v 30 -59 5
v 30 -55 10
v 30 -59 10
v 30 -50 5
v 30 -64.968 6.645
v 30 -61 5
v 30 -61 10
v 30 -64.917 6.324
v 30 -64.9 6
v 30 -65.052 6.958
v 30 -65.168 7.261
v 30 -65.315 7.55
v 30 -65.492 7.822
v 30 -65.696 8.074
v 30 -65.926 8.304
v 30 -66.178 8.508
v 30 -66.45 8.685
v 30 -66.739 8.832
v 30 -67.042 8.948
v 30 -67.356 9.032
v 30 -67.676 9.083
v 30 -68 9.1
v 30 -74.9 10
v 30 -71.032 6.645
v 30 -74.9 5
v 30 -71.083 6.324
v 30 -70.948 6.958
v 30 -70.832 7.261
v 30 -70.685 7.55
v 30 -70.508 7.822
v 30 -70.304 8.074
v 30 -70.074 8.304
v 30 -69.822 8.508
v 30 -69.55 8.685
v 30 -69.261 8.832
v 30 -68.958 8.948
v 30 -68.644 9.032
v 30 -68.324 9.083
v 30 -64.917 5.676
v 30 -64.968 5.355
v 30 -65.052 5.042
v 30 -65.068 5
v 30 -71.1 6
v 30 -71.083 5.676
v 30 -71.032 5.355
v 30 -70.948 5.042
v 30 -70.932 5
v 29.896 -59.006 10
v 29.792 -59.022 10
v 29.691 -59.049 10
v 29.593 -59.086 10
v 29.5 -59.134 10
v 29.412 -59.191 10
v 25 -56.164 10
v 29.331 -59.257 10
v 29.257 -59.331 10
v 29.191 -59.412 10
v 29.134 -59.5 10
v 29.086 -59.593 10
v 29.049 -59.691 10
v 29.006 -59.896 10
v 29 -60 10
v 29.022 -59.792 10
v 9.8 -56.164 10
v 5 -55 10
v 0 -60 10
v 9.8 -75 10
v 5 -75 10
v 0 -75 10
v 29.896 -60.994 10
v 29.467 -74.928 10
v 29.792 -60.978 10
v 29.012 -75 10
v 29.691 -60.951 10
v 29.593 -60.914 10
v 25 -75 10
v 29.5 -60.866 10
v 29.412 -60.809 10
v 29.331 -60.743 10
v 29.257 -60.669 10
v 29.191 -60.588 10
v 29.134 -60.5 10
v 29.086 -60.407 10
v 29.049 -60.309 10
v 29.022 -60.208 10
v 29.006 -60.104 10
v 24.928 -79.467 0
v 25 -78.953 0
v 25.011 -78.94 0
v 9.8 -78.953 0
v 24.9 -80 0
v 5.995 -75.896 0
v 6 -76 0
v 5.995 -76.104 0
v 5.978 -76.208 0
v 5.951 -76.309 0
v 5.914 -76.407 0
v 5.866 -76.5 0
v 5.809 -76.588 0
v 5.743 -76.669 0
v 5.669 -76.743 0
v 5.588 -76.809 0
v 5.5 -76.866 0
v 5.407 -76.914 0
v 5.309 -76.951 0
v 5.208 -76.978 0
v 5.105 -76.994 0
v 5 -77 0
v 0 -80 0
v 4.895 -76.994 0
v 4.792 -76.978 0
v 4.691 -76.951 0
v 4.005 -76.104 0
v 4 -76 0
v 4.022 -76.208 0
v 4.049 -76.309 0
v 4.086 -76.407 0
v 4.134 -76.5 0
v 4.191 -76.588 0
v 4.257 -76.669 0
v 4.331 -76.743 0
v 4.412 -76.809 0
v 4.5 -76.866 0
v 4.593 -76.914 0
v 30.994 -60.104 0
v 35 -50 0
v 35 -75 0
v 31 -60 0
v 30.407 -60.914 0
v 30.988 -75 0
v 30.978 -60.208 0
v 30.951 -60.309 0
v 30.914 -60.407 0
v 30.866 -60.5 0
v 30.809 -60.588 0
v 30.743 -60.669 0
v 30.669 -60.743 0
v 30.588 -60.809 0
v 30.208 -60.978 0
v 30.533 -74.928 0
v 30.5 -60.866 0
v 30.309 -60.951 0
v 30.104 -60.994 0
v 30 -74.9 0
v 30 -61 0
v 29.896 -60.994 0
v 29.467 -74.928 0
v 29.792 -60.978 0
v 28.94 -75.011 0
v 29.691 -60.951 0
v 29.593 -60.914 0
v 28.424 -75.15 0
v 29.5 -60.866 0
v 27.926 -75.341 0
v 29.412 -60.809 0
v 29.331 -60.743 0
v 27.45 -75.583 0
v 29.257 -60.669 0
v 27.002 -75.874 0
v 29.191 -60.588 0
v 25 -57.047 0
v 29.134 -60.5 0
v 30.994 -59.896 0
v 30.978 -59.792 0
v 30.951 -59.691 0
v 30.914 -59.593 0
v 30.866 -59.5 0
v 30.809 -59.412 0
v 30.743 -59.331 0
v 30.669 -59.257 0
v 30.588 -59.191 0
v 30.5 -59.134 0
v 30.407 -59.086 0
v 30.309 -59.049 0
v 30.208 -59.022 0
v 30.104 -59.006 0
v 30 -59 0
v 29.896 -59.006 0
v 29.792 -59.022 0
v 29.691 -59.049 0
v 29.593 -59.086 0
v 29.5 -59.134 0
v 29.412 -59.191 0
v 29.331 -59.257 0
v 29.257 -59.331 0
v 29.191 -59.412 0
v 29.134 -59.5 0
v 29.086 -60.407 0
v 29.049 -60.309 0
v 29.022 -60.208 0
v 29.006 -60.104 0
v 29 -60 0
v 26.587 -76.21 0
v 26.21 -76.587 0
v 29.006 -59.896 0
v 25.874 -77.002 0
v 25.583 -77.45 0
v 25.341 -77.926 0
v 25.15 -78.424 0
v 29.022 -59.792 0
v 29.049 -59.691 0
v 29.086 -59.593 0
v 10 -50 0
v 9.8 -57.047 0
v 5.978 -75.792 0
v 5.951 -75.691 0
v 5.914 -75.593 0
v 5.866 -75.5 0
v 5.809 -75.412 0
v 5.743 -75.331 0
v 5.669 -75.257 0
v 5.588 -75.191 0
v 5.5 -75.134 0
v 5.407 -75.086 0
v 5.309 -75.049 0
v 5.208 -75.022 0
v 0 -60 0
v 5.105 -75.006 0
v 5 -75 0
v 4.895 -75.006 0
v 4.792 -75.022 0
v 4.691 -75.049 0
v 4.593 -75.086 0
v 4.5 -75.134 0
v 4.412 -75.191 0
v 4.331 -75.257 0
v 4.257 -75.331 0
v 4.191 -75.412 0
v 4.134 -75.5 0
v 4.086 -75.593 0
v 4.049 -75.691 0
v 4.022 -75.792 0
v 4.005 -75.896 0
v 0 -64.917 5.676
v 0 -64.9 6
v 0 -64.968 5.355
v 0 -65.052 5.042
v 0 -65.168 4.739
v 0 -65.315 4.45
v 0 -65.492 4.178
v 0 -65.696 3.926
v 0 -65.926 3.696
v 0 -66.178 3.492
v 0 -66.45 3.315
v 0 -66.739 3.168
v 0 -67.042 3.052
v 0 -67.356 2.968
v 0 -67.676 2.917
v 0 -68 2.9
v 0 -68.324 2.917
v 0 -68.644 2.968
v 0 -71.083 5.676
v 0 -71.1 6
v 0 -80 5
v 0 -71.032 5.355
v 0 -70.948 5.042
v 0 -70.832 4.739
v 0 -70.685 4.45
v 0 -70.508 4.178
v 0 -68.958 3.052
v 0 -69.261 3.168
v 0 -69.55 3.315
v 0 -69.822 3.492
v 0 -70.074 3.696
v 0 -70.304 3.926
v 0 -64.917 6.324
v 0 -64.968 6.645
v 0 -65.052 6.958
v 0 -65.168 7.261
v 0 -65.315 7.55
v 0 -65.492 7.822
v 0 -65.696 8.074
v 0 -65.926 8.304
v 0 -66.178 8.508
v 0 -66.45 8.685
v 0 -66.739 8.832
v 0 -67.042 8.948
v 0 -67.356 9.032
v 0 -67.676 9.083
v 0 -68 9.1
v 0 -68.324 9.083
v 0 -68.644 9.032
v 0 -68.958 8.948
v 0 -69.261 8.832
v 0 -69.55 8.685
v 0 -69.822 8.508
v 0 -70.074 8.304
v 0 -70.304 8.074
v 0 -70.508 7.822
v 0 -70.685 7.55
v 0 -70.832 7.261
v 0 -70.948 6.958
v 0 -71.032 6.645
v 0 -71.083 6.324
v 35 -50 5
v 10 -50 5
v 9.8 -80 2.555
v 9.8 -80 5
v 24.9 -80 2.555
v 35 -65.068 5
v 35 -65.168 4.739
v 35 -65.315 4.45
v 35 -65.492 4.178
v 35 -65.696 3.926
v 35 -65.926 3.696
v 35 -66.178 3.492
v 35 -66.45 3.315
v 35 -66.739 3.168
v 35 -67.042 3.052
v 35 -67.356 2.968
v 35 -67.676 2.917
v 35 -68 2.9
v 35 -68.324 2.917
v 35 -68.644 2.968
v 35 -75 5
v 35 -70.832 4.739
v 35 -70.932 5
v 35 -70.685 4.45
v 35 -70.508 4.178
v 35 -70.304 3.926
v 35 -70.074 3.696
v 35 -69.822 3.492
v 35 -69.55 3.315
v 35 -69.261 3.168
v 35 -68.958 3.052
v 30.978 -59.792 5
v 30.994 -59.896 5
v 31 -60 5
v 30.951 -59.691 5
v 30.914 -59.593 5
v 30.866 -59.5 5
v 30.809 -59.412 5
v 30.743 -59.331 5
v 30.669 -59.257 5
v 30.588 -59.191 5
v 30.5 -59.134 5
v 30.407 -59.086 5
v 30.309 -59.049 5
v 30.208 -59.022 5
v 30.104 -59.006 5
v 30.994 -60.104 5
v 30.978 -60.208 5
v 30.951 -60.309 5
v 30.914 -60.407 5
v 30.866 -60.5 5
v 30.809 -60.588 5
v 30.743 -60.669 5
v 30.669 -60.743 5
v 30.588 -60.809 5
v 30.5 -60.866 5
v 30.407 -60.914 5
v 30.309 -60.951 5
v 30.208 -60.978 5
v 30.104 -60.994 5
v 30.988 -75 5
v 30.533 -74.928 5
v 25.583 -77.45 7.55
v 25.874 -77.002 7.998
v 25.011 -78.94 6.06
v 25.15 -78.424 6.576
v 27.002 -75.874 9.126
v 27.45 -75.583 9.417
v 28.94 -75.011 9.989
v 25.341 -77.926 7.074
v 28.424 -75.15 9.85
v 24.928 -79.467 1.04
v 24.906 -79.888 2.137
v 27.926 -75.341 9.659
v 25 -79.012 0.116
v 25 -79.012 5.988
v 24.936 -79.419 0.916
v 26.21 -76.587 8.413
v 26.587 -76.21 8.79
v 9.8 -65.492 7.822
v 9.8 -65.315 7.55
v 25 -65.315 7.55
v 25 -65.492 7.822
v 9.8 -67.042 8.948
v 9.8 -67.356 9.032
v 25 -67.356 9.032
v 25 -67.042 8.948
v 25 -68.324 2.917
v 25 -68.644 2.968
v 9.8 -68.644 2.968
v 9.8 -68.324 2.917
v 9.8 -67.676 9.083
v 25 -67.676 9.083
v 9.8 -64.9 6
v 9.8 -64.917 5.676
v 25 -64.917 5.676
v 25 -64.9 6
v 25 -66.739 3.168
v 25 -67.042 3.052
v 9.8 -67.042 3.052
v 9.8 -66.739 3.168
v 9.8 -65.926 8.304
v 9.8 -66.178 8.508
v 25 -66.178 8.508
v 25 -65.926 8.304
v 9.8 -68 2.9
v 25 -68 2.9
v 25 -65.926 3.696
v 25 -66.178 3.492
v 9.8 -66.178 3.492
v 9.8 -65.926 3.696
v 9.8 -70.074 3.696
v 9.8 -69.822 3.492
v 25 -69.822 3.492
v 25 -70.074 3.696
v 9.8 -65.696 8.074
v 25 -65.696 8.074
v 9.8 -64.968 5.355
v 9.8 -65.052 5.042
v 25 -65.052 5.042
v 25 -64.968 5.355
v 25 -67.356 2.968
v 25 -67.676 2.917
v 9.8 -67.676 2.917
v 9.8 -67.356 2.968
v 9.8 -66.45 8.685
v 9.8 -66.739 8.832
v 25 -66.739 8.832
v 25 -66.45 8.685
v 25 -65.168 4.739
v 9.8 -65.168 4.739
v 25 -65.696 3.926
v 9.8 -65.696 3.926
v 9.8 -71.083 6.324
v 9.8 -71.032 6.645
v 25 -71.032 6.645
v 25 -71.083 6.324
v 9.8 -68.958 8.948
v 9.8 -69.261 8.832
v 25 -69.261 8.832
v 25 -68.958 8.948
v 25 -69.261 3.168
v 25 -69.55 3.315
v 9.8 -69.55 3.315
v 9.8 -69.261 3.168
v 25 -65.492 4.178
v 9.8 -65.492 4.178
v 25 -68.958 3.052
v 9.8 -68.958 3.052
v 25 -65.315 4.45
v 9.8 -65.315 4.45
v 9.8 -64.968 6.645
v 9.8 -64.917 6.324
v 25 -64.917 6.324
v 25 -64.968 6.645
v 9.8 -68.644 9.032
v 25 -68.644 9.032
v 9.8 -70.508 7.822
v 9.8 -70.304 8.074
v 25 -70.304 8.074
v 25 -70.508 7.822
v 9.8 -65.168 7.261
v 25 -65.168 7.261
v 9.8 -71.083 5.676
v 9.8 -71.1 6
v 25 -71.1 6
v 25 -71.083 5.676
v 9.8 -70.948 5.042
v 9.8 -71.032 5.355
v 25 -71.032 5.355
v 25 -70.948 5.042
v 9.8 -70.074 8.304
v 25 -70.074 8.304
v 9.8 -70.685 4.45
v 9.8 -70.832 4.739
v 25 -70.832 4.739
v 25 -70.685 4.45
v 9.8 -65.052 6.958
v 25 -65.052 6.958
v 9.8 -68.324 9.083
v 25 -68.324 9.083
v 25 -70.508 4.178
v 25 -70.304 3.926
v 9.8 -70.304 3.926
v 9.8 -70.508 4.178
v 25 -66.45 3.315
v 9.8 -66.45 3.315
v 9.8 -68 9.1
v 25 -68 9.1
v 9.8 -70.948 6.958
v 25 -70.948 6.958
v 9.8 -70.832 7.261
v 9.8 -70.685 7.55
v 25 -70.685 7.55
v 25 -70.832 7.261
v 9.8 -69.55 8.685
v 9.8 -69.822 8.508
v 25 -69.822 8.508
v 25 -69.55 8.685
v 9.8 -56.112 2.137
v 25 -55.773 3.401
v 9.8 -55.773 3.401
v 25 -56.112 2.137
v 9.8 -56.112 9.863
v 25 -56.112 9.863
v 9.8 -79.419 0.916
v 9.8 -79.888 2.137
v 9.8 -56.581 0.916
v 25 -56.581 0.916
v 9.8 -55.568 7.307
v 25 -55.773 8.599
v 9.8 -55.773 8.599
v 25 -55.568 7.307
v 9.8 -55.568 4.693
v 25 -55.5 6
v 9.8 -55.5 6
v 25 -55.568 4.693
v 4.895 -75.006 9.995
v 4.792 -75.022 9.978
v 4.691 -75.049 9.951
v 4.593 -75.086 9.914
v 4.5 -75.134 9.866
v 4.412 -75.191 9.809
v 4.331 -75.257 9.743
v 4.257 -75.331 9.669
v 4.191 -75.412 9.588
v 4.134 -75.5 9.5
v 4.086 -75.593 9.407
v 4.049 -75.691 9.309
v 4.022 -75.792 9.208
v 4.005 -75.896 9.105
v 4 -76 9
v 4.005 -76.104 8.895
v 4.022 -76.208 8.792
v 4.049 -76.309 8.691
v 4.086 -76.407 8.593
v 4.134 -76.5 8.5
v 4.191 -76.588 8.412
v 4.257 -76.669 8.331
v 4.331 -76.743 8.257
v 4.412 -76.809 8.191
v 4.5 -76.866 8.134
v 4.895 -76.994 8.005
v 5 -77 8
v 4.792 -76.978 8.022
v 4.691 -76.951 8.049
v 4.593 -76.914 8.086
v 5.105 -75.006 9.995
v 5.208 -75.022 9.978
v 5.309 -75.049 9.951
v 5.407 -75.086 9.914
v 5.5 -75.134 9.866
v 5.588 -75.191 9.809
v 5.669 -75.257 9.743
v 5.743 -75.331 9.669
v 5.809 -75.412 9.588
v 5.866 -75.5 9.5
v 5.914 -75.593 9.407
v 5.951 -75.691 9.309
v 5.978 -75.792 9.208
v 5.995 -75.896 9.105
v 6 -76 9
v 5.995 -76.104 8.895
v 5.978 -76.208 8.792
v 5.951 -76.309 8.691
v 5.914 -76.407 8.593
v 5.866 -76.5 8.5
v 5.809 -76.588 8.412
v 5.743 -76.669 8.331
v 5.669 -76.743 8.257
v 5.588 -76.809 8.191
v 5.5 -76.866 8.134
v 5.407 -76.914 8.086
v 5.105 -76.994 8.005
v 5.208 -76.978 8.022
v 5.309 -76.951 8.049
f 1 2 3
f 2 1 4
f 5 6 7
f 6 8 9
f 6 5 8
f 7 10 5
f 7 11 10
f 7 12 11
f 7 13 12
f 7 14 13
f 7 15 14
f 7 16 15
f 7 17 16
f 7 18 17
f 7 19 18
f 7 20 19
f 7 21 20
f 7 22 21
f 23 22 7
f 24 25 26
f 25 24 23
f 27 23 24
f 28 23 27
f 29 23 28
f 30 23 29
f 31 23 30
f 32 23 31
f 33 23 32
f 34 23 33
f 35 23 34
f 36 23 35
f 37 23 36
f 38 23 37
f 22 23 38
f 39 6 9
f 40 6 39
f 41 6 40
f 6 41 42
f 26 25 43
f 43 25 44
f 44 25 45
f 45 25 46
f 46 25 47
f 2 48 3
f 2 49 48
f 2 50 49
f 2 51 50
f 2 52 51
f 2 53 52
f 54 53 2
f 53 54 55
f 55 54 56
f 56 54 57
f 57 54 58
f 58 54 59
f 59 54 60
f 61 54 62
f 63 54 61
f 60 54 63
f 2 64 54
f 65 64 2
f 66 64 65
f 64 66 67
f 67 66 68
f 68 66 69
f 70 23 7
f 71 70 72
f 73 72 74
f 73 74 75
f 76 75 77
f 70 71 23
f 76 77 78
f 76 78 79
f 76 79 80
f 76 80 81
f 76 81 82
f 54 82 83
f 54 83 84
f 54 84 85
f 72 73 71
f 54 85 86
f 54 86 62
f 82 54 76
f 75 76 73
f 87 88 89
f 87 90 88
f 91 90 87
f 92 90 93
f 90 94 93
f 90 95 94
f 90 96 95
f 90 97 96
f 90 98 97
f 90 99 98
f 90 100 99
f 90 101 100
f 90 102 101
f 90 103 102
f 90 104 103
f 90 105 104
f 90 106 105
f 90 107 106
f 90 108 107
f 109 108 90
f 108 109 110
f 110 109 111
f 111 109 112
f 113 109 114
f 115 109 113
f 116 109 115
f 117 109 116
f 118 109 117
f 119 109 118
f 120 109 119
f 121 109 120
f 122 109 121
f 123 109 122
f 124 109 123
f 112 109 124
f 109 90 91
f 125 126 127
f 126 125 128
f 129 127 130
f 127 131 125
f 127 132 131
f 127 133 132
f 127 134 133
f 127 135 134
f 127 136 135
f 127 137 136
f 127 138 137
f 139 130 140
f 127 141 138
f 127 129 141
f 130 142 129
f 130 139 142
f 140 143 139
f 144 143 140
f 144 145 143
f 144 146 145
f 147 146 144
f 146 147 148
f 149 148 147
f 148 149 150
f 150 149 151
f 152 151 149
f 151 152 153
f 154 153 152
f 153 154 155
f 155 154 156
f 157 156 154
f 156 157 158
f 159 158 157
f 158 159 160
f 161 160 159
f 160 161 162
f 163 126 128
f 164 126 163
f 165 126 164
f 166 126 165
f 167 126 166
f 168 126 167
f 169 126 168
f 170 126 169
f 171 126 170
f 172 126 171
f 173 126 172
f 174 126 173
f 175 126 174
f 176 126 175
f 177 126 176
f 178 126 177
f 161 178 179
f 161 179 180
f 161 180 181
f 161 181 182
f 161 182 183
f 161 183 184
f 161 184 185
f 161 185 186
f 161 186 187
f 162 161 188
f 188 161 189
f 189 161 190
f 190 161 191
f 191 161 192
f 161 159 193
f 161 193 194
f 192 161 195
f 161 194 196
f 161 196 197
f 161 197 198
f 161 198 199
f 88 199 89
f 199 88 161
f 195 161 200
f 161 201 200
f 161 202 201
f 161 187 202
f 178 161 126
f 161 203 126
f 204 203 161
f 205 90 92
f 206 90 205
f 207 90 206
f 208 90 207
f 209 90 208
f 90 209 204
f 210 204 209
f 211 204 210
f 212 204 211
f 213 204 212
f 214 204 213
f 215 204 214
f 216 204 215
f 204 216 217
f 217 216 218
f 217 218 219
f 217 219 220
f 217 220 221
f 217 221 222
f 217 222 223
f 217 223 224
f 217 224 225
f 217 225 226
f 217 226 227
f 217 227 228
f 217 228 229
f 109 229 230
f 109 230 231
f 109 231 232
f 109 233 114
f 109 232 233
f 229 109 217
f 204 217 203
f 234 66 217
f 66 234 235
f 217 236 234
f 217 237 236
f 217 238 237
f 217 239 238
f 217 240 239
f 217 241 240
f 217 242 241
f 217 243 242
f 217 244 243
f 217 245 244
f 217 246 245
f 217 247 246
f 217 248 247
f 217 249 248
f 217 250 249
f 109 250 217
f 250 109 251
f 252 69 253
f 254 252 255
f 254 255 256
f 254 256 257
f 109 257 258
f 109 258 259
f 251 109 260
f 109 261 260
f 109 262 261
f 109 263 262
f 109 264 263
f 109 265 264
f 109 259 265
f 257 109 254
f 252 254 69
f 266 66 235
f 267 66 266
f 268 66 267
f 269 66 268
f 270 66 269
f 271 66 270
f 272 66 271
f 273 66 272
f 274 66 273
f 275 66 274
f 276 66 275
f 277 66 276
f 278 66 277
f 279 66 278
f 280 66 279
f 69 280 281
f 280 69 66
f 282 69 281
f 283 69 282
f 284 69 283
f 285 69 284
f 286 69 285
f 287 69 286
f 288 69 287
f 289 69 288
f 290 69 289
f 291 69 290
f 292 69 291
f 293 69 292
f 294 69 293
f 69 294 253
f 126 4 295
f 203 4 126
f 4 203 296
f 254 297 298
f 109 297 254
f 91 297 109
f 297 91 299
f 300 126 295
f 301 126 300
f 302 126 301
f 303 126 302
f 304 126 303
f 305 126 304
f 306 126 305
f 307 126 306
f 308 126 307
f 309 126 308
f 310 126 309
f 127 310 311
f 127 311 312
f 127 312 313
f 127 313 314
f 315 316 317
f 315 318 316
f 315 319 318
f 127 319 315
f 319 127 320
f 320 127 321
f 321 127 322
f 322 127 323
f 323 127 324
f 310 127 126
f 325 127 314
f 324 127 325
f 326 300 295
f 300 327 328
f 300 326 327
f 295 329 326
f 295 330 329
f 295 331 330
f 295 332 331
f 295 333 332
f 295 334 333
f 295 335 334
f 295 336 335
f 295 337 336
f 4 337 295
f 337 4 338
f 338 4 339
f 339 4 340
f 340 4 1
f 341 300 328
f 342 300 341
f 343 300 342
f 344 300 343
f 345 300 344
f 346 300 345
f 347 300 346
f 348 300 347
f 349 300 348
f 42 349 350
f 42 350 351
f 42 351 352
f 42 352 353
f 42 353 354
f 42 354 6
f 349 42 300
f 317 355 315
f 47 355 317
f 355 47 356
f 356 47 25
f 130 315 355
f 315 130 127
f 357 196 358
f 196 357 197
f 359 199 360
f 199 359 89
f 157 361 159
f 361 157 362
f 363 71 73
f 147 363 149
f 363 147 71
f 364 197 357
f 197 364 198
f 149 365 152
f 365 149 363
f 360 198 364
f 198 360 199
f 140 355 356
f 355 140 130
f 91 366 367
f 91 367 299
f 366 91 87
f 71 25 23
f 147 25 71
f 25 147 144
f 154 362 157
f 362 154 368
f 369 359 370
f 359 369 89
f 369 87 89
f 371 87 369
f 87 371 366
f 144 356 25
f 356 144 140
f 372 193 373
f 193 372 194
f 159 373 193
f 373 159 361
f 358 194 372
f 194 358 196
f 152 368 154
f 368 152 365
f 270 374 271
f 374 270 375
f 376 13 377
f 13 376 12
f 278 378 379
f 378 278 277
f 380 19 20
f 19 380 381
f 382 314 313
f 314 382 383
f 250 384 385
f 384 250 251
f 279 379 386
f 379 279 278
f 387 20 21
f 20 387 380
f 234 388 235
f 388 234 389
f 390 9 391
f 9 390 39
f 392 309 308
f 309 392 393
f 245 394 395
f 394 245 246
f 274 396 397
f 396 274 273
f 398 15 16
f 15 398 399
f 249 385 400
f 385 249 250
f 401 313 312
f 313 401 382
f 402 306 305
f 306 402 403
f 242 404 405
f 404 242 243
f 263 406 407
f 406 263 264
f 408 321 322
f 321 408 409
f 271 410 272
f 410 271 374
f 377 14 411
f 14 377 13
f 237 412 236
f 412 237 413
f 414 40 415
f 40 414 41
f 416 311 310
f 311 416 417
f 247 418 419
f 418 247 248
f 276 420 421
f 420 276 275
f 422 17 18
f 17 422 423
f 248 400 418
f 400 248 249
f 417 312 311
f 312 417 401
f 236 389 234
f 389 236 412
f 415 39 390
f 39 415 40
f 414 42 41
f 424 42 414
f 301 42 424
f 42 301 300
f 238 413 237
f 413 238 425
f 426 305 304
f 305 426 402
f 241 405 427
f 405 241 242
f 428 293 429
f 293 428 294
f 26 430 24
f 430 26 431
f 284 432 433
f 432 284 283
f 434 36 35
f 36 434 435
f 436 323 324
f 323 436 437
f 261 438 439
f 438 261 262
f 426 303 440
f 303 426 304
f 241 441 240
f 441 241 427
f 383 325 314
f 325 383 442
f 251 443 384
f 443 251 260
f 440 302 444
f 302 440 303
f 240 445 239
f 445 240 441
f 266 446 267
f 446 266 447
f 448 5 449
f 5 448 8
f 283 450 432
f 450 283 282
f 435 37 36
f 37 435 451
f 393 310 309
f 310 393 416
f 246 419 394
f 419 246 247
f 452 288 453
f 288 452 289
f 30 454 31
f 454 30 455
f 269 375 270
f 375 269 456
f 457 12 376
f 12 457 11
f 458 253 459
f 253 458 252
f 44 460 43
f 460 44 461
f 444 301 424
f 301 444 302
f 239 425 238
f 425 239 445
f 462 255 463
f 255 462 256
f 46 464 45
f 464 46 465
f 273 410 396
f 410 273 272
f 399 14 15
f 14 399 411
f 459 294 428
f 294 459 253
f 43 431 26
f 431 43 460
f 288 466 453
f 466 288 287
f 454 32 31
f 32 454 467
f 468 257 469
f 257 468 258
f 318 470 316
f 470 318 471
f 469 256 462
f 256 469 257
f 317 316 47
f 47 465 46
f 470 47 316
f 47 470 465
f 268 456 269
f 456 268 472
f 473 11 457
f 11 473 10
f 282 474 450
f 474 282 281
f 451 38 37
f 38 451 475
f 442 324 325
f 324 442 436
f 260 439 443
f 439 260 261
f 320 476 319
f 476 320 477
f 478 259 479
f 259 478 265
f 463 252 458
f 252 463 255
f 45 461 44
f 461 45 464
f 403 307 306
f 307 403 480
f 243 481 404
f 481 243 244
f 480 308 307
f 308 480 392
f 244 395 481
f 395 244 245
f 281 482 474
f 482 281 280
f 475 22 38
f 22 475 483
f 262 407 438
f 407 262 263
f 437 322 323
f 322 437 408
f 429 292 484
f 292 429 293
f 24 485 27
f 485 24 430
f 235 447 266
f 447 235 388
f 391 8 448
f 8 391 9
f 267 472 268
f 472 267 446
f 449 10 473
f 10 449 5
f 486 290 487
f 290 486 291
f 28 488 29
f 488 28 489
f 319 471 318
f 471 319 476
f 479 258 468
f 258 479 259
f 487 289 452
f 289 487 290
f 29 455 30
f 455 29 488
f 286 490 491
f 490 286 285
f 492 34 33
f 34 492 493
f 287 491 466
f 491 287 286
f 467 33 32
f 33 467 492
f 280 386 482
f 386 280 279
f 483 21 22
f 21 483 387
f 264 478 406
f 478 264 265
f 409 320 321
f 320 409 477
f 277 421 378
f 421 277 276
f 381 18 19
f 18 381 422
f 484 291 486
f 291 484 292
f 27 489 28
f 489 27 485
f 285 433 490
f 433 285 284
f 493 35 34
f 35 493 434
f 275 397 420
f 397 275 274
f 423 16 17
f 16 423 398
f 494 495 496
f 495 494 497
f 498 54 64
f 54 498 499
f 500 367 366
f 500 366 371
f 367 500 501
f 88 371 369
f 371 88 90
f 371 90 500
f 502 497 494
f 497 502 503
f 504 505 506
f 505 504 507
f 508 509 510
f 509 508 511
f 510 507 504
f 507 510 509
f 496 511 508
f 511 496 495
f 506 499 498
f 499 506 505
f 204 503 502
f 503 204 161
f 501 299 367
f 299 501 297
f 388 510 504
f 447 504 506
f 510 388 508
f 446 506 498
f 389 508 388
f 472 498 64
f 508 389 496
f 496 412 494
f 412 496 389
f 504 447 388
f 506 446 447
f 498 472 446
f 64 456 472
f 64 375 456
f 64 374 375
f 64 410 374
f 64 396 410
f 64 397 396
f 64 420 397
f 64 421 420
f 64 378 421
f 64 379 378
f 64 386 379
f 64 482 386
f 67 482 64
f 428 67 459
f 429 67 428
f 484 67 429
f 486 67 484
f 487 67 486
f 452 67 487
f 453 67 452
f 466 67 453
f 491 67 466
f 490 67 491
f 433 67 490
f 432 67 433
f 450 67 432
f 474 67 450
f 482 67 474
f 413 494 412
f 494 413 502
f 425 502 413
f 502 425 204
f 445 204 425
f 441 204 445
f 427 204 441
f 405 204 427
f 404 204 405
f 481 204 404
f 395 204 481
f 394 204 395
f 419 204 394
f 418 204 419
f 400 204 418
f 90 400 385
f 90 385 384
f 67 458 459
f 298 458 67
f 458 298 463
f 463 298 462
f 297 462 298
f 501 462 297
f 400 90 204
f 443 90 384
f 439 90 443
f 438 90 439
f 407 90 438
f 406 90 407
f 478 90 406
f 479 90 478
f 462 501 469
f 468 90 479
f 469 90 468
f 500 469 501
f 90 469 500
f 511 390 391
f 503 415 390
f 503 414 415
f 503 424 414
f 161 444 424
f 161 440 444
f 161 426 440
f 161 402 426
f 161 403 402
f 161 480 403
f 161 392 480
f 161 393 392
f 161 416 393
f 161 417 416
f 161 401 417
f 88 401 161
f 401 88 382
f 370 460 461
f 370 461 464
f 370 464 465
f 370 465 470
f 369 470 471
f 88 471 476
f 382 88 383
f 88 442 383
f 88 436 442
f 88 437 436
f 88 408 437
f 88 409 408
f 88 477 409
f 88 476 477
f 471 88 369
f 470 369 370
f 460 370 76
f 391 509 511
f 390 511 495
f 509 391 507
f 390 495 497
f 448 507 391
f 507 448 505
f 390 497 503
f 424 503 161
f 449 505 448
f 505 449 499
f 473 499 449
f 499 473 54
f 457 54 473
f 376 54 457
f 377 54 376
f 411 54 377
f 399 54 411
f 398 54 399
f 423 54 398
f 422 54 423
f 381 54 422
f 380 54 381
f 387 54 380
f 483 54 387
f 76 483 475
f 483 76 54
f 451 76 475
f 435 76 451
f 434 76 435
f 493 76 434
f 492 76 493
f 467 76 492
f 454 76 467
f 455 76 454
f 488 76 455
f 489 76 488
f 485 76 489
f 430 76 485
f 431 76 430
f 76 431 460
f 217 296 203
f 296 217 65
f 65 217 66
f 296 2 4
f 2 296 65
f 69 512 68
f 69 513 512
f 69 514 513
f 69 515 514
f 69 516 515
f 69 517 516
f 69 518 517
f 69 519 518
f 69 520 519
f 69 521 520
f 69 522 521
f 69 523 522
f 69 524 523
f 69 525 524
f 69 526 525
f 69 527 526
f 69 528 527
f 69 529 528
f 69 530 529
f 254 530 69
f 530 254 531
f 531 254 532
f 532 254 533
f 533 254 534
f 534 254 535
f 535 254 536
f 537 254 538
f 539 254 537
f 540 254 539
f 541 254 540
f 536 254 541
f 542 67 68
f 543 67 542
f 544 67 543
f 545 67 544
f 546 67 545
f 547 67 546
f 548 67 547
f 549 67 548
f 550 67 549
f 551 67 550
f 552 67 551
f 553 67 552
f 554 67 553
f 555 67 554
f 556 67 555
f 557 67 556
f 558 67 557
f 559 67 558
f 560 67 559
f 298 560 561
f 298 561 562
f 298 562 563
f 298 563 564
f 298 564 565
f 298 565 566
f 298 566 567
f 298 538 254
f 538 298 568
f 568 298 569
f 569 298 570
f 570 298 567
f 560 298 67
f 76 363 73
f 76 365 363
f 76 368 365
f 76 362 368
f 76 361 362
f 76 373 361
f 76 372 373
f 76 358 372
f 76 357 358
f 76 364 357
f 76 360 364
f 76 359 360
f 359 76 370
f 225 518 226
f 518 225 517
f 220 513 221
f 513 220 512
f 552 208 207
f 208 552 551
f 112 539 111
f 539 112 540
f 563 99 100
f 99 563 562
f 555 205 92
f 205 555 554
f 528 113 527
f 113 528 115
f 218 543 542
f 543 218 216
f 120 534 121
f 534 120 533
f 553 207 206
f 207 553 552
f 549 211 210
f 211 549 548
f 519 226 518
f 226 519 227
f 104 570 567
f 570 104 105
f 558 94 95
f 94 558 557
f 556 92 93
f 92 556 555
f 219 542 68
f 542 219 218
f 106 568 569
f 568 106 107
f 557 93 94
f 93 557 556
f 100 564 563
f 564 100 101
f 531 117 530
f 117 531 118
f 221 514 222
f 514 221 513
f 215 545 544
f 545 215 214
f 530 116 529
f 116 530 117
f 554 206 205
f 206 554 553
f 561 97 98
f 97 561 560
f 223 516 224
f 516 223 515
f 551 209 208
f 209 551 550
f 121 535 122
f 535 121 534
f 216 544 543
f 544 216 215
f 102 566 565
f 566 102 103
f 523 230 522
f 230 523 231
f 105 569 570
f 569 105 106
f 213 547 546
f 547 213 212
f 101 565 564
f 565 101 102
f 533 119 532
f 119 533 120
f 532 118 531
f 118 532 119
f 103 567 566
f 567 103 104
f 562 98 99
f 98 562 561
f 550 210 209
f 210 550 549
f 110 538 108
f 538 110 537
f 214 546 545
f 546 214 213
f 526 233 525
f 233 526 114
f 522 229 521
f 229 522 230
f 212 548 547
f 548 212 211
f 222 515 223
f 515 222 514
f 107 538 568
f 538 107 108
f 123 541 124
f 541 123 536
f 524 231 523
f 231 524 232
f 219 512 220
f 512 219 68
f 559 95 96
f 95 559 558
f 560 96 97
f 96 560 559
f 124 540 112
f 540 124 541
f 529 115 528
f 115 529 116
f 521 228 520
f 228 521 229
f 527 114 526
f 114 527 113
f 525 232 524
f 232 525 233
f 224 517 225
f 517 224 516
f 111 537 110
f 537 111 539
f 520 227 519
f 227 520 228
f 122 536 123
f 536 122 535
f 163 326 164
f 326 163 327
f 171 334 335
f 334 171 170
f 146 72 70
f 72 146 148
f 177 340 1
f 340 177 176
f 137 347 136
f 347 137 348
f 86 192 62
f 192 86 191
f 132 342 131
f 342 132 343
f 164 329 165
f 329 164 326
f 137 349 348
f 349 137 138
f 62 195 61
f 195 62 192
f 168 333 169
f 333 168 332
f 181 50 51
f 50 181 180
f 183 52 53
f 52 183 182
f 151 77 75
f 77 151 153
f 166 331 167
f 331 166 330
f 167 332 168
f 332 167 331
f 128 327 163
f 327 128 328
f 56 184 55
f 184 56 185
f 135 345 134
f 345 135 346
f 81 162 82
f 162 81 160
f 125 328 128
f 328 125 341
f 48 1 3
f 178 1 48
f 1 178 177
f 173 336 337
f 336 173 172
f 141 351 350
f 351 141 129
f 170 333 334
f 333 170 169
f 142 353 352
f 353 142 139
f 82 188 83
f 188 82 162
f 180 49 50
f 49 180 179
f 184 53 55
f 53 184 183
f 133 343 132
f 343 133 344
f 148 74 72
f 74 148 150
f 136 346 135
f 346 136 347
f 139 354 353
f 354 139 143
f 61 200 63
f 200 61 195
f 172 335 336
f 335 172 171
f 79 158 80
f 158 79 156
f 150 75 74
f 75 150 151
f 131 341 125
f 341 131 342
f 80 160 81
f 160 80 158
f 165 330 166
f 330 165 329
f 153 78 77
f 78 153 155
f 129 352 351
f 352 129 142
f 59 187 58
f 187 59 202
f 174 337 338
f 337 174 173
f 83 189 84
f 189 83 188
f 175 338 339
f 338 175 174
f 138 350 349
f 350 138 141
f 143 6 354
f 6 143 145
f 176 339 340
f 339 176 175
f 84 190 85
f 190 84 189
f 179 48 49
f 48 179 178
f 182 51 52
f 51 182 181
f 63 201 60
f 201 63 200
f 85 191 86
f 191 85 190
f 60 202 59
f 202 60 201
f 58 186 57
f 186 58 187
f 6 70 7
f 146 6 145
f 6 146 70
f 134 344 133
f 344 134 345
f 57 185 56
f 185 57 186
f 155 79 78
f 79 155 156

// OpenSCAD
// file: modules.scad
module roof(l, w, h){
    polyhedron(
        points=[
            [0,0,0],
            [l,0,0],
            [l,w,0],
            [0,w,0],
            [0,w/2,h],
            [l,w/2,h]
            ],
        faces=[
            [0,1,2,3],
            [0,4,1],
            [1,4,5,2],
            [2,5,3],
            [3,5,4,0]
            ]
            );
    };

module wedge(l, w, h) {
    polyhedron(
            points=[
                [0,0,0],
                [l,0,0],
                [l,w,0],
                [0,w,0],
                [0,0,h],
                [l,0,h]
            ],
            faces=[
                [0,3,2,1],
                [0,1,5,4],
                [1,2,5],
                [2,3,4,5],
                [3,0,4]
            ]
    );
   };    
module tube(d1, d2, h) {
    difference() {
        cylinder(d=d1, h=h);
        cylinder(d=d2, h=h);
        };
    };

module countersunk_screw(vScrew_d, vScrew_l){
    union(){
    cylinder(d=vScrew_d, h= vScrew_l);
    cylinder(d1=vScrew_d*2, h=vScrew_d);
    };
};
// main file
// some variables
$fn = 60; // we are using 60 fragments for cylinders and similar objects

// some modules such as hex, countersunk screws, roof, wedge are available in a module file
use <modules.scad>;


// focusing rod axis is set to -63mm to the lid center
// rail block total width is 100mm
// inner total width is 160mm


vTolerance = 0.2;

vFocusingBlock_l = 30;
vFocusingBlock_w = 30;
vFocusingBlock_h = 10;
vFocusingBlock_offsetX = 0;
vFocusingBlock_offsetY = -80; // we are shifting to -Y so we can use the same measurements as on the lid 
vFocusingBlock_offsetZ = 0;

vFrontWallExtension_l = 5;
vFrontWallExtension_w = 25;
vFrontWallExtension_h = 5;
vFrontWallExtension_offsetX = vFocusingBlock_l;
vFrontWallExtension_offsetY = vFocusingBlock_offsetY + vFocusingBlock_w - vFrontWallExtension_w;
vFrontWallExtension_offsetZ = 0;

vFrontEdgeCutout_d = 10+vTolerance;
vFrontEdgeCutout_h = vFocusingBlock_h;
vFrontEdgeCutout_offsetX = vFocusingBlock_l;
vFrontEdgeCutout_offsetY = vFocusingBlock_offsetY;
vFrontEdgeCutout_offsetZ = 0;

vBackEdgeCutout_l = 10;
vBackEdgeCutout_w = 10;
vBackEdgeCutout_h = vFocusingBlock_h;
vBackEdgeCutout_offsetX = 0;
vBackEdgeCutout_offsetY = vFocusingBlock_offsetY+vFocusingBlock_w;
vBackEdgeCutout_offsetZ = 0;

vFocusingRodHole_d = 6+vTolerance;
vFocusingRodHole_h = vFocusingBlock_l+vFrontWallExtension_l;
vFocusingRodHole_offsetX = 0;
vFocusingRodHole_offsetY = -68;
//vFocusingRodHole_offsetZ = vFocusingBlock_h/2;
vFocusingRodHole_offsetZ = 6;

vFocusingKnobCutout_d = 25;
vFocusingKnobCutout_h = 15+vTolerance;
vFocusingKnob_offsetX = 10-vTolerance;
vFocusingKnob_offsetY = vFocusingRodHole_offsetY;
vFocusingKnob_offsetZ = vFocusingRodHole_offsetZ;

vLeftUpperEdgeCutout_l = vFocusingBlock_l;
vLeftUpperEdgeCutout_w = vFocusingBlock_h/2;
vLeftUpperEdgeCutout_h = vFocusingBlock_h/2;
vLeftUpperEdgeCutout_offsetX = 0;
vLeftUpperEdgeCutout_offsetY = vFocusingBlock_offsetY+vFocusingBlock_w;
vLeftUpperEdgeCutout_offsetZ = vFocusingBlock_h;

vRightUpperEdgeCutout_l = vFocusingBlock_l;
vRightUpperEdgeCutout_w = vFocusingBlock_h-vFrontWallExtension_h;
vRightUpperEdgeCutout_h = vRightUpperEdgeCutout_w;
vRightUpperEdgeCutout_offsetX = 0;
vRightUpperEdgeCutout_offsetY = vFocusingBlock_offsetY;
vRightUpperEdgeCutout_offsetZ = vFocusingBlock_h;

vScrewHole_d = 2;
vScrewHole_h = 10;
vScrewHole1_offsetX = 5;
vScrewHole2_offsetX = vFocusingBlock_l;
vScrewHole3_offsetX = vFocusingBlock_l;
vScrewHole1_offsetY = vFocusingRodHole_offsetY-8;
vScrewHole2_offsetY = vFocusingRodHole_offsetY-8;
vScrewHole3_offsetY = vFocusingRodHole_offsetY+8;
vScrewHole1_offsetZ = 0;
vScrewHole2_offsetZ = 0;
vScrewHole3_offsetZ = 0;

//wedge(vUpperEdgeCutout_l, -vUpperEdgeCutout_w, -vUpperEdgeCutout_h);


 difference(){   
     union(){
         translate([vFocusingBlock_offsetX, vFocusingBlock_offsetY, vFocusingBlock_offsetZ])
            cube([vFocusingBlock_l, vFocusingBlock_w, vFocusingBlock_h]);
         translate([vFrontWallExtension_offsetX, vFrontWallExtension_offsetY, vFrontWallExtension_offsetZ])
            cube([vFrontWallExtension_l, vFrontWallExtension_w, vFrontWallExtension_h]);
         }
     // front edge cutout
     translate([vFrontEdgeCutout_offsetX, vFrontEdgeCutout_offsetY, vFrontEdgeCutout_offsetZ])
         cylinder(d=vFrontEdgeCutout_d, h= vFrontEdgeCutout_h);
     // hole for focusing_rod
     translate([vFocusingRodHole_offsetX, vFocusingRodHole_offsetY, vFocusingRodHole_offsetZ])
            rotate([0, 90, 0])
                cylinder(d=vFocusingRodHole_d, h=vFocusingRodHole_h);
     // cutout for the focusing knob
     translate([vFocusingKnob_offsetX, vFocusingKnob_offsetY, vFocusingKnob_offsetZ])
            rotate([0, 90, 0])
                cylinder(d=vFocusingKnobCutout_d, h=vFocusingKnobCutout_h);  
     // back edge cut
     translate([vBackEdgeCutout_offsetX, vBackEdgeCutout_offsetY, vBackEdgeCutout_offsetZ])
        rotate([0, -90, 180])
            wedge(vBackEdgeCutout_h, vBackEdgeCutout_w, vBackEdgeCutout_l);
         
     // upper edge cutoff
     translate([vLeftUpperEdgeCutout_offsetX, vLeftUpperEdgeCutout_offsetY, vLeftUpperEdgeCutout_offsetZ])
            wedge(vLeftUpperEdgeCutout_l, -vLeftUpperEdgeCutout_w, -vLeftUpperEdgeCutout_h);
     translate([vRightUpperEdgeCutout_offsetX, vRightUpperEdgeCutout_offsetY, vRightUpperEdgeCutout_offsetZ])
            wedge(vRightUpperEdgeCutout_l, vRightUpperEdgeCutout_w, -vRightUpperEdgeCutout_h);
     // screw holes
     translate([vScrewHole1_offsetX, vScrewHole1_offsetY, vScrewHole1_offsetZ])
        cylinder(d=vScrewHole_d, h=vScrewHole_h);
    /*translate([vScrewHole2_offsetX, vScrewHole2_offsetY, vScrewHole2_offsetZ])
        cylinder(d=vScrewHole_d, h=vScrewHole_h);*/
    translate([vScrewHole3_offsetX, vScrewHole3_offsetY, vScrewHole3_offsetZ])
        cylinder(d=vScrewHole_d, h=vScrewHole_h);
 }
